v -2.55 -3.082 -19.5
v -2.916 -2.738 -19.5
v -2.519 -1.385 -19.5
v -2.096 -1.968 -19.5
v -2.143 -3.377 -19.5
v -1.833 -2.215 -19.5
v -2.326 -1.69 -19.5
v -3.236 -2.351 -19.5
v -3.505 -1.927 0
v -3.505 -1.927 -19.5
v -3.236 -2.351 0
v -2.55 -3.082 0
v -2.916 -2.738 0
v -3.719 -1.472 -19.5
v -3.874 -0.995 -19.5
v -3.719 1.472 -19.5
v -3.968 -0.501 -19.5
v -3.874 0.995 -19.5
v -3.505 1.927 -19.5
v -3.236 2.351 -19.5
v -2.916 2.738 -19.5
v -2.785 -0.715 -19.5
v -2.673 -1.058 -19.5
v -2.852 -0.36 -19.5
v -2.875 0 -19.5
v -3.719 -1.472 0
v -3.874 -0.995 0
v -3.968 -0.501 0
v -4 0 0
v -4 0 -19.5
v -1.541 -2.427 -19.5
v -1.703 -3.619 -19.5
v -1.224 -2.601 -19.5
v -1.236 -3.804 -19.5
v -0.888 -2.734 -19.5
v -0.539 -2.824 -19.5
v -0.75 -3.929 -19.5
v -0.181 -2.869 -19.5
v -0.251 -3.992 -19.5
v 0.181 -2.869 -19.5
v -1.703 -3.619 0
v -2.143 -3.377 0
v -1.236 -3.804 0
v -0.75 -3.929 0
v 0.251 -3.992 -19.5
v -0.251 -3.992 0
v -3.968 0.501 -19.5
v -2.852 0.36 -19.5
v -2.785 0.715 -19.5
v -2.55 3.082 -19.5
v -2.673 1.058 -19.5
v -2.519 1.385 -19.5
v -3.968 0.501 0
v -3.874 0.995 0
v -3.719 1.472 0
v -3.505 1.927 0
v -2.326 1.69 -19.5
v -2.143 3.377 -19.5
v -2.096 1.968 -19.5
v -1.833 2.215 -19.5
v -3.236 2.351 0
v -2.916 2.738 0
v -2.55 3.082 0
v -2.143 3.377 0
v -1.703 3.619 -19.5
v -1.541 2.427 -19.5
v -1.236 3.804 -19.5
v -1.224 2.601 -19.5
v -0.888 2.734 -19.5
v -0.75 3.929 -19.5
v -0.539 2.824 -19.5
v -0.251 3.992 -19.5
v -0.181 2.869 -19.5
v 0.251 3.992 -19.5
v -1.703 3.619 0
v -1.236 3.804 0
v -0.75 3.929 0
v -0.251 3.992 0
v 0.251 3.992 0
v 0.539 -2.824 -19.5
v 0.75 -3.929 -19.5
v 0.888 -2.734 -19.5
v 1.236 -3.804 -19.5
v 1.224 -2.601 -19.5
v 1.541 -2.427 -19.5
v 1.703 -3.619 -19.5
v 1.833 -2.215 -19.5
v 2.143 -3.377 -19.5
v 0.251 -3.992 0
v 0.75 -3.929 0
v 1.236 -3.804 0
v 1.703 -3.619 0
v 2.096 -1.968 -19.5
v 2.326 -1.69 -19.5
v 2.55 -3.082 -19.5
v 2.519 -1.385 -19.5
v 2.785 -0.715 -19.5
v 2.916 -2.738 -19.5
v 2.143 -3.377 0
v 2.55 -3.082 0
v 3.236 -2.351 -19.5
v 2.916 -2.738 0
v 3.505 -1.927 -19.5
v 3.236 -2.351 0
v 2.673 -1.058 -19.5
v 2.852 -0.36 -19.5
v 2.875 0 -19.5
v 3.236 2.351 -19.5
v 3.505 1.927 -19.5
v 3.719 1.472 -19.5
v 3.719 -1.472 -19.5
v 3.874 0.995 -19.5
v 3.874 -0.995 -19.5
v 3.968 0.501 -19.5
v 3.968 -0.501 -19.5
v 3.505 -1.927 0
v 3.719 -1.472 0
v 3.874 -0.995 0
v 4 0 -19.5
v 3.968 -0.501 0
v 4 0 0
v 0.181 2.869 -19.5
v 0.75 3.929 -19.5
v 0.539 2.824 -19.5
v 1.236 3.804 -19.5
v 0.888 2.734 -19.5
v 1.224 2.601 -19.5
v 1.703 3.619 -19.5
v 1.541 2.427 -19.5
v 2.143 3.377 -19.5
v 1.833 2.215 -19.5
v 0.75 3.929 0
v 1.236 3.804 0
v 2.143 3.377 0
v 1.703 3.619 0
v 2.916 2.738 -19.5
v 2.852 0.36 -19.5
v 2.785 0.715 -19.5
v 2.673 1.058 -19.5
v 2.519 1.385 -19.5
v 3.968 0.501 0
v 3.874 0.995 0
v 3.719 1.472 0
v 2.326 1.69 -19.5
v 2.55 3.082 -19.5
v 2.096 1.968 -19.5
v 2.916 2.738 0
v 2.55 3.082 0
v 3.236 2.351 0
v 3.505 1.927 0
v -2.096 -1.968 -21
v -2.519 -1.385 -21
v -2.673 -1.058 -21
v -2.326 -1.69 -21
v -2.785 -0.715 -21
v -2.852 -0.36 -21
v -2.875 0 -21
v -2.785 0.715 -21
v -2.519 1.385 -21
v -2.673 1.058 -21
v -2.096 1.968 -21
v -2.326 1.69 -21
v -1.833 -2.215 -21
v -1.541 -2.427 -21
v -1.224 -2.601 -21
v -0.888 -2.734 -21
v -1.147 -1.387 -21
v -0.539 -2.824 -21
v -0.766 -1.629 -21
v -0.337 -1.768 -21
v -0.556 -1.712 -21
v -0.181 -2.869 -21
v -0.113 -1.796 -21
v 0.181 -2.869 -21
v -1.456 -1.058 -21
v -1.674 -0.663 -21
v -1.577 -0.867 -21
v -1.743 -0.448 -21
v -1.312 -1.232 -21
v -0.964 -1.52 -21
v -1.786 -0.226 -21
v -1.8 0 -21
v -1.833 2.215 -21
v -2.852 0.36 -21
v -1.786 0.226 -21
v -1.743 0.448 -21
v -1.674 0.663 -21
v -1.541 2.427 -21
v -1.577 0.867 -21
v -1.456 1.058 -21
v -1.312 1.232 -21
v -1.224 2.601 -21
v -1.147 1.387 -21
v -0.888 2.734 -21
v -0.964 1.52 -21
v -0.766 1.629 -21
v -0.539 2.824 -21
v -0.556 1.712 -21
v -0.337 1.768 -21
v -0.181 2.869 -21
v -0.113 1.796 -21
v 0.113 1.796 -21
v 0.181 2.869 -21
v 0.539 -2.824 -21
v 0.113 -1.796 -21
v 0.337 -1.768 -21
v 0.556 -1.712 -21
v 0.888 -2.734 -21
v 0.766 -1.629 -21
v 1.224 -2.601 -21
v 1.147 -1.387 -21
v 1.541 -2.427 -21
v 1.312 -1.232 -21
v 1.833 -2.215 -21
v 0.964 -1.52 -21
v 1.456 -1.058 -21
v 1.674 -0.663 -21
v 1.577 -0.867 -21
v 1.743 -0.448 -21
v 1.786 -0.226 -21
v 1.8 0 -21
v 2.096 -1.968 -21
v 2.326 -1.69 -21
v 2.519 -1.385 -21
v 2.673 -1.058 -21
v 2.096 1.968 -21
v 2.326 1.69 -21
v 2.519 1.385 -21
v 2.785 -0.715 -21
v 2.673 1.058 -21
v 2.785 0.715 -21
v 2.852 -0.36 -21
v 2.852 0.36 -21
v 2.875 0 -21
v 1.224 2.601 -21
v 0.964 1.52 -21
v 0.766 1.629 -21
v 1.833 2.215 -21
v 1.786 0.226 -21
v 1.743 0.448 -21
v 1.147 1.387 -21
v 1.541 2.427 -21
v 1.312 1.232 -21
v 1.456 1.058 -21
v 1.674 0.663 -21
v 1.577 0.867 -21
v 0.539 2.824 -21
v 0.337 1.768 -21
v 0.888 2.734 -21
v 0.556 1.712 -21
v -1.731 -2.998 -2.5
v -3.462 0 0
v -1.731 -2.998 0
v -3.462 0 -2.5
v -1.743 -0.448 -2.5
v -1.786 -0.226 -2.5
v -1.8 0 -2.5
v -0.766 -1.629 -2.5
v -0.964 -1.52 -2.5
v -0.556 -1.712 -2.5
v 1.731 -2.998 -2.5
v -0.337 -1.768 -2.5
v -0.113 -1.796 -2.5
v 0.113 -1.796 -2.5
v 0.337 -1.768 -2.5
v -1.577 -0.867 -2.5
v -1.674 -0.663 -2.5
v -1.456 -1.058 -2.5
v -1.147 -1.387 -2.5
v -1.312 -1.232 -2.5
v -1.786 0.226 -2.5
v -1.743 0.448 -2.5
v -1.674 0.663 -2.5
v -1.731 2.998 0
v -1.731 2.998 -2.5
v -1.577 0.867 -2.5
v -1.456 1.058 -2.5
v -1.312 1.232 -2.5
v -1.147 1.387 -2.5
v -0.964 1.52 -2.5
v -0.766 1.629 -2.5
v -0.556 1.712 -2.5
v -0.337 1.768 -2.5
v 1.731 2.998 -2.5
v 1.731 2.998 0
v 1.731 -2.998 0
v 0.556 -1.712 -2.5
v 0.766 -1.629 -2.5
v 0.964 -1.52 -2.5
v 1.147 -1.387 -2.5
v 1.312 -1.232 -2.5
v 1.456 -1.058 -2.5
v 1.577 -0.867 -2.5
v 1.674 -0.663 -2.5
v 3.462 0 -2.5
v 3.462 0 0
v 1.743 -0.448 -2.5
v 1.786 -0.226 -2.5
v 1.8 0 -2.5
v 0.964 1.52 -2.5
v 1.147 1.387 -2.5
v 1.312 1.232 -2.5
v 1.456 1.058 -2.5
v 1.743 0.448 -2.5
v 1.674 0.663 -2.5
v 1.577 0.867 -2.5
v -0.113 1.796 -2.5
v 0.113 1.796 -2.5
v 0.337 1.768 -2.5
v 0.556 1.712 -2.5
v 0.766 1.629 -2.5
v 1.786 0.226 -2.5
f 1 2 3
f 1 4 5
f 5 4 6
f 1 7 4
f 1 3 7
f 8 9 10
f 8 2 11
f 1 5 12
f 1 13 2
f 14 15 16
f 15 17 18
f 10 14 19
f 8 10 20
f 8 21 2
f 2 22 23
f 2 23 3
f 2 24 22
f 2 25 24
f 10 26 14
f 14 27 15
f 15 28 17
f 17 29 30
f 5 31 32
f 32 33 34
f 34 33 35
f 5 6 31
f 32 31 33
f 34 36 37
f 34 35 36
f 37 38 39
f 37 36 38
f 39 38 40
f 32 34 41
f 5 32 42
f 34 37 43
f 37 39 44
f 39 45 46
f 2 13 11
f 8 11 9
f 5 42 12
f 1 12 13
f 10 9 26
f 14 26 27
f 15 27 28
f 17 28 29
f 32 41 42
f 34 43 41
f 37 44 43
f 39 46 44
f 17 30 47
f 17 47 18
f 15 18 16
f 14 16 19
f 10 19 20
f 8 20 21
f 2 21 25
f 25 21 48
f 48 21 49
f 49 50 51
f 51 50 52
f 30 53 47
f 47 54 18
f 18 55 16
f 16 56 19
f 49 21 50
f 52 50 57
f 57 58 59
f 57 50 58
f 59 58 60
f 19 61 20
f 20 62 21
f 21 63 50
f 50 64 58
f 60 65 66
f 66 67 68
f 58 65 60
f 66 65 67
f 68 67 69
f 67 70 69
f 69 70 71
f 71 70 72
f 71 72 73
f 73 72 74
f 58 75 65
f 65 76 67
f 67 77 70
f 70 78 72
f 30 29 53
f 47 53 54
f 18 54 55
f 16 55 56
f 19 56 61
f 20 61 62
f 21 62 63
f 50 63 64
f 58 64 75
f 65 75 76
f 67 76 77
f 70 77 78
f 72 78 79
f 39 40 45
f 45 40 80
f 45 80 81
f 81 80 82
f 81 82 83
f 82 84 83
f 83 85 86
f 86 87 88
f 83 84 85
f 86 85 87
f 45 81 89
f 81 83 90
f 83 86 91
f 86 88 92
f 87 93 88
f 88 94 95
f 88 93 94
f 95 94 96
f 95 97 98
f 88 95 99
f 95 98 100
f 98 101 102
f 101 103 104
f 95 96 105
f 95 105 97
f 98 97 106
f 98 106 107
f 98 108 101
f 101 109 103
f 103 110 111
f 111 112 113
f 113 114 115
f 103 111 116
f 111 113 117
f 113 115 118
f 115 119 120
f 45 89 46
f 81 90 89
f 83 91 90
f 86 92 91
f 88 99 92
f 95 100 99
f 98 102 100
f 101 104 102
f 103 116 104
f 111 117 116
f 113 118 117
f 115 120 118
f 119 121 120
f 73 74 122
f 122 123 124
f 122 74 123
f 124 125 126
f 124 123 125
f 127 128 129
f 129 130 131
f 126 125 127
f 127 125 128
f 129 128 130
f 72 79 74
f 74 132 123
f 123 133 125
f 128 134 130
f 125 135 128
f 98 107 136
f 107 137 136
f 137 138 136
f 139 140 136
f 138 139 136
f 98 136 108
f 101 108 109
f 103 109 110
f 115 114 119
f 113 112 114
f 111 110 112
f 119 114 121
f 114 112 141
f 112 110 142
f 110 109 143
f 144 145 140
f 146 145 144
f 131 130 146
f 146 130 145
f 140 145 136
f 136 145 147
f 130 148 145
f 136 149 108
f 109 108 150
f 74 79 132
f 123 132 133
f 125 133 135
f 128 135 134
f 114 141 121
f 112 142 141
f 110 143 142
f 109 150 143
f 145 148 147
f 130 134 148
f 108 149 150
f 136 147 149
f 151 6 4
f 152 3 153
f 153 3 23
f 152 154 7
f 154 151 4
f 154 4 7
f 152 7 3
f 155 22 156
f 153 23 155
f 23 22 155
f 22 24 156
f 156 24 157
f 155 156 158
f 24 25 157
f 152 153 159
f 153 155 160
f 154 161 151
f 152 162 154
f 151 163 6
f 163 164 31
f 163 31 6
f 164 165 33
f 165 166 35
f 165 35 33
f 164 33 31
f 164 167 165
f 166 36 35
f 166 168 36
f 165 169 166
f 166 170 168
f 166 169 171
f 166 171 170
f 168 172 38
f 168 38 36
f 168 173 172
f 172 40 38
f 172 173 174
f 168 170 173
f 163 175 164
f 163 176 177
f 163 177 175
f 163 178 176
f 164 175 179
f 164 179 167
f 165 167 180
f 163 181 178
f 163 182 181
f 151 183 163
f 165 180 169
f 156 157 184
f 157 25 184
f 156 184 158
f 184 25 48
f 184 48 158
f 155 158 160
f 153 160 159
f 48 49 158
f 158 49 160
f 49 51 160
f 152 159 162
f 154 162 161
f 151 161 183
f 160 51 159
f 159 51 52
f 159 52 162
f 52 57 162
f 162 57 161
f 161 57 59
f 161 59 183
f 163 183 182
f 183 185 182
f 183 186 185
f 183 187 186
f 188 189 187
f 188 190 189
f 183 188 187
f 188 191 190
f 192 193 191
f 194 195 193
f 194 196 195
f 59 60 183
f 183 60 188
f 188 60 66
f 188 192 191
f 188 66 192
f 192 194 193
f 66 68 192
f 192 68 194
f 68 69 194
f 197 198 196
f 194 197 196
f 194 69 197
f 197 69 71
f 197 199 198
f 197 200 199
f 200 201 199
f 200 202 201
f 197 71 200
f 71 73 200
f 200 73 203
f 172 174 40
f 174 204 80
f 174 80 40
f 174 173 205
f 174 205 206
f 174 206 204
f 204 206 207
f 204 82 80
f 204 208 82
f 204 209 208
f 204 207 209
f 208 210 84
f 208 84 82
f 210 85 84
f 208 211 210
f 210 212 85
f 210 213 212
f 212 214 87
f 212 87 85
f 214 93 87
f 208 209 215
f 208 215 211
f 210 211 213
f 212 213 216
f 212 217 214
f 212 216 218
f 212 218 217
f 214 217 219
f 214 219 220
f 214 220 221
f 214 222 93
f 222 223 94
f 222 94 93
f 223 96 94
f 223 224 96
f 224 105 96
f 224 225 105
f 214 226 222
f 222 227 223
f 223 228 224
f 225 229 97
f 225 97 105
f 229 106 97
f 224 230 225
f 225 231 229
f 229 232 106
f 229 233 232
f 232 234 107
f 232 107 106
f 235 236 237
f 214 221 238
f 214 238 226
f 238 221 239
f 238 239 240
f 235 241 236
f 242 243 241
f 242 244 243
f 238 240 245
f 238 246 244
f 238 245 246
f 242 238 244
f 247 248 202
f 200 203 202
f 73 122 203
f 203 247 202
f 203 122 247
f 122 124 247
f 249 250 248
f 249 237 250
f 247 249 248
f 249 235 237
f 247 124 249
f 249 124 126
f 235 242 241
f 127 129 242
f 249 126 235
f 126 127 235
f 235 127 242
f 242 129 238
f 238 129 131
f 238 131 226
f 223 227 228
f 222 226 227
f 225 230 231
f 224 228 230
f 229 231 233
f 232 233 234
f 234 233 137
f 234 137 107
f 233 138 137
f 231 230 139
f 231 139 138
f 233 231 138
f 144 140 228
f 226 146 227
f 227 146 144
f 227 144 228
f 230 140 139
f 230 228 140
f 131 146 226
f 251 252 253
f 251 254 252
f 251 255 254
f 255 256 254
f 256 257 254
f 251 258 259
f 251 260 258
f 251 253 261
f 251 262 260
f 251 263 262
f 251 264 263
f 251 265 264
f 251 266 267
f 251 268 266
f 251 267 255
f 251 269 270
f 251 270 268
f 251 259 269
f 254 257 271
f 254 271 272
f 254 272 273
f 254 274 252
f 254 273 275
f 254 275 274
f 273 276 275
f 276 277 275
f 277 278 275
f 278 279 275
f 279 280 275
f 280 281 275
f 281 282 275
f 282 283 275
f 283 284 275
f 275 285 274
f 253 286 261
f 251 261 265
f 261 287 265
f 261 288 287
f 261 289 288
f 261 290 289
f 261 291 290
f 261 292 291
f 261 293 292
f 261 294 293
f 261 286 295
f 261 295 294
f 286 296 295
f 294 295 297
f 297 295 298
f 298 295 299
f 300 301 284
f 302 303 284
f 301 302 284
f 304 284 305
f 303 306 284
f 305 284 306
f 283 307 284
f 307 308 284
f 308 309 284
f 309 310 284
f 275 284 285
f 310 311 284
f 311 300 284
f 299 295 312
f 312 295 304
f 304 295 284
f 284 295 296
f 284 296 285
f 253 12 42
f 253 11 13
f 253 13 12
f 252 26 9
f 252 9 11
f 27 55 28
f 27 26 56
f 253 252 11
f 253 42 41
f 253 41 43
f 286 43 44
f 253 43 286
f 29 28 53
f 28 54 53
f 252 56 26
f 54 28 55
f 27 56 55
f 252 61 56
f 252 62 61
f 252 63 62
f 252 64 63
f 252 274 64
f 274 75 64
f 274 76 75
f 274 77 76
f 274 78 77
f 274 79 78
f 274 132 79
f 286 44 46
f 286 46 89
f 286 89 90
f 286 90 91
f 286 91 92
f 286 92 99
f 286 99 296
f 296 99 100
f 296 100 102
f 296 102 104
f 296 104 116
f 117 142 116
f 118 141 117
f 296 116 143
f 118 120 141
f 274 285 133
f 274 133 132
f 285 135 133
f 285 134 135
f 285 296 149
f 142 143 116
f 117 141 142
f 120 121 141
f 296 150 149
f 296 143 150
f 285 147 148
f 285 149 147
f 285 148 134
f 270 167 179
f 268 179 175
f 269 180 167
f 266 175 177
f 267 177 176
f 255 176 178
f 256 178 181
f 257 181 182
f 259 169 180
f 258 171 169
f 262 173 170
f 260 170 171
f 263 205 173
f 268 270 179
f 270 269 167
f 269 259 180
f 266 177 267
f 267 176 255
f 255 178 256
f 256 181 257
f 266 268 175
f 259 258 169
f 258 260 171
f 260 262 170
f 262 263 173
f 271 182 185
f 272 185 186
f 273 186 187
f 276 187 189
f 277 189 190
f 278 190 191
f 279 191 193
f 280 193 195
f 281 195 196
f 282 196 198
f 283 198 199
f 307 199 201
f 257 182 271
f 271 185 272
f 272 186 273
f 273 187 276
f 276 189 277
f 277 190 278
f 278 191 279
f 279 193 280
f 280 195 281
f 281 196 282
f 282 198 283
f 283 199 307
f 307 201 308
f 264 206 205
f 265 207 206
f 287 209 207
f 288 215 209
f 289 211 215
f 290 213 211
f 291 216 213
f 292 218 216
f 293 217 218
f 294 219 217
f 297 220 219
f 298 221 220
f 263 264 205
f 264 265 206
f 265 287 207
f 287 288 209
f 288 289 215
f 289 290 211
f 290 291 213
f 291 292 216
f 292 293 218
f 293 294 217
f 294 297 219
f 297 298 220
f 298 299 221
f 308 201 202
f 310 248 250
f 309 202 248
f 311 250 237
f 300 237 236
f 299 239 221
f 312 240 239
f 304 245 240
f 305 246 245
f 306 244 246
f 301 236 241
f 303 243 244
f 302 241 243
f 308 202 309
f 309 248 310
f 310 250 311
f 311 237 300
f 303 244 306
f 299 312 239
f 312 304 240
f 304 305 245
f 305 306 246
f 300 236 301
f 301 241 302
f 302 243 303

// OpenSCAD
$fn = 50;

difference() {
	union() {
		translate(v = [0, 0, -19.5]) {
			cylinder(h = 22.5, r = 4.0);
		}
		#translate(v = [0, 0, -21.0]) {
			cylinder(h = 21, r = 2.875);
		}
	}
	union() {
		translate(v = [0, 0, 0]) {
			rotate(a = [0, 0, 0]) {
				difference() {
					union() {
						translate(v = [0, 0, -2.5]) {
							linear_extrude(height = 2.5) {
								polygon(points = [[3.4619999999999997, 0.0], [1.7310000000000003, 2.9981799479017264], [-1.7309999999999992, 2.9981799479017264], [-3.4619999999999997, 4.2397272186481365e-16], [-1.7310000000000014, -2.998179947901726], [1.7309999999999977, -2.9981799479017277]]);
							}
						}
					}
					union();
				}
			}
		}
		#cylinder(h = 3, r = 5.0);
		#translate(v = [0, 0, -100.0]) {
			cylinder(h = 200, r = 1.8);
		}
	}
}
